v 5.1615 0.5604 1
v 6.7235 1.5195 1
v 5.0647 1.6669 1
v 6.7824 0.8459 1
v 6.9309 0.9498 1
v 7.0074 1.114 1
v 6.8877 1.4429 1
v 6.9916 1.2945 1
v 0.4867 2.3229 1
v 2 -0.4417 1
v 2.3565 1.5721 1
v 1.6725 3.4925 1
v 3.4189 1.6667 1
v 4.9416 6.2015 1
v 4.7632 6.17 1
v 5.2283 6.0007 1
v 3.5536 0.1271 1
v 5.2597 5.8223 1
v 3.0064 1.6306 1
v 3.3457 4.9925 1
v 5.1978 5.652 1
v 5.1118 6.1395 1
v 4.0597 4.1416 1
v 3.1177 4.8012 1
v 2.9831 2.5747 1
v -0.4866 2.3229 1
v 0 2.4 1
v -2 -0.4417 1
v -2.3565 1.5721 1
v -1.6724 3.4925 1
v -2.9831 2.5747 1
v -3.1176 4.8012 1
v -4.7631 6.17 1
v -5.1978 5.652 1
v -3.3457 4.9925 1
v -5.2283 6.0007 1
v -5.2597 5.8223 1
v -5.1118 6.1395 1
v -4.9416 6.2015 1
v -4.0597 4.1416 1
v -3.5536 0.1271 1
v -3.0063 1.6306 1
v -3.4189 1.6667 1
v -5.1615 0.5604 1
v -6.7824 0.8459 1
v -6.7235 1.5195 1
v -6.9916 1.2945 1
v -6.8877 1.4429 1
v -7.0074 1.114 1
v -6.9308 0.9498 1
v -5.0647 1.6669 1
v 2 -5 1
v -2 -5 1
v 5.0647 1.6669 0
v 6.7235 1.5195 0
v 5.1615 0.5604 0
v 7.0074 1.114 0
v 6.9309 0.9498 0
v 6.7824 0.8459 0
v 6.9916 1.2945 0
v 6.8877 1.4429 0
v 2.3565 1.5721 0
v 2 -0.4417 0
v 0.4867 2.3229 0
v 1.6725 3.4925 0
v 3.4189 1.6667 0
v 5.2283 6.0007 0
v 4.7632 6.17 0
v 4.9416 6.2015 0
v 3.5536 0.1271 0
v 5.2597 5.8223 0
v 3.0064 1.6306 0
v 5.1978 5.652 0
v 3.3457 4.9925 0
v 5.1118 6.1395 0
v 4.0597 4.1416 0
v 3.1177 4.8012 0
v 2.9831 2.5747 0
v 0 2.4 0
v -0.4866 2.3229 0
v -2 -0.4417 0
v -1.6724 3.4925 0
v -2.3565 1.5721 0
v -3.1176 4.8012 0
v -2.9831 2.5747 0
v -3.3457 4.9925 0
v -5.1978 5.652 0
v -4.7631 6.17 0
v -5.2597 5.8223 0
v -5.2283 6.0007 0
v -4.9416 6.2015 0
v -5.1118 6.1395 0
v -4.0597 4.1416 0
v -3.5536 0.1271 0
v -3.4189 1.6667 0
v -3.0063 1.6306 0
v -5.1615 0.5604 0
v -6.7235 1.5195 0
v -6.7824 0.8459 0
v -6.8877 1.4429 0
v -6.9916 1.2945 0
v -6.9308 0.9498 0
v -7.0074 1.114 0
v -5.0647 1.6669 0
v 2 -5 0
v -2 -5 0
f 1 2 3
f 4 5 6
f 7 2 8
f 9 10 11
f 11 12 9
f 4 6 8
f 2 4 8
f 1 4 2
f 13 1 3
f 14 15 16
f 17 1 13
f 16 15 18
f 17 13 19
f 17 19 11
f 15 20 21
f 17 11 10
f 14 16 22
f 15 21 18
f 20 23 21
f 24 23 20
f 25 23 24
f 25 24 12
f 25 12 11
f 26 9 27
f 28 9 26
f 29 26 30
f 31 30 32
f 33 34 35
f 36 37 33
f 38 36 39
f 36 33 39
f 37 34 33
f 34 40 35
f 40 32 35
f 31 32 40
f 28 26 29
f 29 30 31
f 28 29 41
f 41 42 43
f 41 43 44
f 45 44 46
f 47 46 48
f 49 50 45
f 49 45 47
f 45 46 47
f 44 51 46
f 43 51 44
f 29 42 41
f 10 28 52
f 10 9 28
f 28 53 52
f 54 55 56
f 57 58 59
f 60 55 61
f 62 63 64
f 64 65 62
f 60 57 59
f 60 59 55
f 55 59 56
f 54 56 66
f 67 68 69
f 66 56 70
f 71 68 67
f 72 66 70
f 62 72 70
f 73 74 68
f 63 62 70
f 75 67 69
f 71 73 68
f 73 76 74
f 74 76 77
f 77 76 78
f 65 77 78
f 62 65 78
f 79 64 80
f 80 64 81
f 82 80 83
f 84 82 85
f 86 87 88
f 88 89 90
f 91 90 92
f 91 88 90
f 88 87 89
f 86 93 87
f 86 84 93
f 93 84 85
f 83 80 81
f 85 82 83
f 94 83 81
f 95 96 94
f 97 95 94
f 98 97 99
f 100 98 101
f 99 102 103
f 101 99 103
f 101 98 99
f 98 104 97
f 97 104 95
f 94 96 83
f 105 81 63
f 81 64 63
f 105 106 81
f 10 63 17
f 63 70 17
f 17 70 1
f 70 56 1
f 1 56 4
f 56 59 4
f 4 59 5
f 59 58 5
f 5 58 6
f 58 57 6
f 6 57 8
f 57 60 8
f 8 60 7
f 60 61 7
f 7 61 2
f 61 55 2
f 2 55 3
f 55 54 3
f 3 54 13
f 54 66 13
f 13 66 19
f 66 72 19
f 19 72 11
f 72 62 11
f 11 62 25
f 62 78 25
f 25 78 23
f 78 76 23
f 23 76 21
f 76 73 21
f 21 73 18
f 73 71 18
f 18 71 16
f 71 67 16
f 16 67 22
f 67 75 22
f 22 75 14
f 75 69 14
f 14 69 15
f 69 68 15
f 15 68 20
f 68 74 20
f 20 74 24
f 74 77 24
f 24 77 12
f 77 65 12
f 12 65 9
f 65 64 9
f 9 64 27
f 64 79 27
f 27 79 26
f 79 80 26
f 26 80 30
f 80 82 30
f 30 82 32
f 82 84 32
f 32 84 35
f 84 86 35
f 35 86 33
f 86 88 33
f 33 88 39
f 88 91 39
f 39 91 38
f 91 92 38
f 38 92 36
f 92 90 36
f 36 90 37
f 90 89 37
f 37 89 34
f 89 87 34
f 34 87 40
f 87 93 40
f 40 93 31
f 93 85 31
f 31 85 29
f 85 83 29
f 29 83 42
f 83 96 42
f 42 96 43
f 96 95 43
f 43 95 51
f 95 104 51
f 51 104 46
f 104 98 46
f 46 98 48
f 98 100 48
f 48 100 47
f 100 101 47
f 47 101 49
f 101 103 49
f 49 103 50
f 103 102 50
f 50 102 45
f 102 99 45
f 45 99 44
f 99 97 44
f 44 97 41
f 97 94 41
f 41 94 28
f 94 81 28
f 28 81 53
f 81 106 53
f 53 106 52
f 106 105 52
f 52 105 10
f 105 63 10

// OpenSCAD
// Gold_Ornament_Leaves.stl  -  Store Versile room frame (Rev C)
// Quantity: 1   Filament: Leaf green (e.g. PLA Matte Grass Green)
// Print: layer 0.12 mm, infill 100%, 2 walls, brim 0 mm, NO supports
// Orientation: back  (lying on its back, front face up)
// Notes: Glue the tab to the back of the gold pot.
// The library draws parts with their front toward +Y; mirror([0,1,0]) makes the real
// part face the viewer correctly (see build.py). Edit dimensions in versile_parts.scad.
use <../versile_parts.scad>

rotate([-90, 0, 0]) mirror([0, 1, 0]) gold_ornament_leaves();
